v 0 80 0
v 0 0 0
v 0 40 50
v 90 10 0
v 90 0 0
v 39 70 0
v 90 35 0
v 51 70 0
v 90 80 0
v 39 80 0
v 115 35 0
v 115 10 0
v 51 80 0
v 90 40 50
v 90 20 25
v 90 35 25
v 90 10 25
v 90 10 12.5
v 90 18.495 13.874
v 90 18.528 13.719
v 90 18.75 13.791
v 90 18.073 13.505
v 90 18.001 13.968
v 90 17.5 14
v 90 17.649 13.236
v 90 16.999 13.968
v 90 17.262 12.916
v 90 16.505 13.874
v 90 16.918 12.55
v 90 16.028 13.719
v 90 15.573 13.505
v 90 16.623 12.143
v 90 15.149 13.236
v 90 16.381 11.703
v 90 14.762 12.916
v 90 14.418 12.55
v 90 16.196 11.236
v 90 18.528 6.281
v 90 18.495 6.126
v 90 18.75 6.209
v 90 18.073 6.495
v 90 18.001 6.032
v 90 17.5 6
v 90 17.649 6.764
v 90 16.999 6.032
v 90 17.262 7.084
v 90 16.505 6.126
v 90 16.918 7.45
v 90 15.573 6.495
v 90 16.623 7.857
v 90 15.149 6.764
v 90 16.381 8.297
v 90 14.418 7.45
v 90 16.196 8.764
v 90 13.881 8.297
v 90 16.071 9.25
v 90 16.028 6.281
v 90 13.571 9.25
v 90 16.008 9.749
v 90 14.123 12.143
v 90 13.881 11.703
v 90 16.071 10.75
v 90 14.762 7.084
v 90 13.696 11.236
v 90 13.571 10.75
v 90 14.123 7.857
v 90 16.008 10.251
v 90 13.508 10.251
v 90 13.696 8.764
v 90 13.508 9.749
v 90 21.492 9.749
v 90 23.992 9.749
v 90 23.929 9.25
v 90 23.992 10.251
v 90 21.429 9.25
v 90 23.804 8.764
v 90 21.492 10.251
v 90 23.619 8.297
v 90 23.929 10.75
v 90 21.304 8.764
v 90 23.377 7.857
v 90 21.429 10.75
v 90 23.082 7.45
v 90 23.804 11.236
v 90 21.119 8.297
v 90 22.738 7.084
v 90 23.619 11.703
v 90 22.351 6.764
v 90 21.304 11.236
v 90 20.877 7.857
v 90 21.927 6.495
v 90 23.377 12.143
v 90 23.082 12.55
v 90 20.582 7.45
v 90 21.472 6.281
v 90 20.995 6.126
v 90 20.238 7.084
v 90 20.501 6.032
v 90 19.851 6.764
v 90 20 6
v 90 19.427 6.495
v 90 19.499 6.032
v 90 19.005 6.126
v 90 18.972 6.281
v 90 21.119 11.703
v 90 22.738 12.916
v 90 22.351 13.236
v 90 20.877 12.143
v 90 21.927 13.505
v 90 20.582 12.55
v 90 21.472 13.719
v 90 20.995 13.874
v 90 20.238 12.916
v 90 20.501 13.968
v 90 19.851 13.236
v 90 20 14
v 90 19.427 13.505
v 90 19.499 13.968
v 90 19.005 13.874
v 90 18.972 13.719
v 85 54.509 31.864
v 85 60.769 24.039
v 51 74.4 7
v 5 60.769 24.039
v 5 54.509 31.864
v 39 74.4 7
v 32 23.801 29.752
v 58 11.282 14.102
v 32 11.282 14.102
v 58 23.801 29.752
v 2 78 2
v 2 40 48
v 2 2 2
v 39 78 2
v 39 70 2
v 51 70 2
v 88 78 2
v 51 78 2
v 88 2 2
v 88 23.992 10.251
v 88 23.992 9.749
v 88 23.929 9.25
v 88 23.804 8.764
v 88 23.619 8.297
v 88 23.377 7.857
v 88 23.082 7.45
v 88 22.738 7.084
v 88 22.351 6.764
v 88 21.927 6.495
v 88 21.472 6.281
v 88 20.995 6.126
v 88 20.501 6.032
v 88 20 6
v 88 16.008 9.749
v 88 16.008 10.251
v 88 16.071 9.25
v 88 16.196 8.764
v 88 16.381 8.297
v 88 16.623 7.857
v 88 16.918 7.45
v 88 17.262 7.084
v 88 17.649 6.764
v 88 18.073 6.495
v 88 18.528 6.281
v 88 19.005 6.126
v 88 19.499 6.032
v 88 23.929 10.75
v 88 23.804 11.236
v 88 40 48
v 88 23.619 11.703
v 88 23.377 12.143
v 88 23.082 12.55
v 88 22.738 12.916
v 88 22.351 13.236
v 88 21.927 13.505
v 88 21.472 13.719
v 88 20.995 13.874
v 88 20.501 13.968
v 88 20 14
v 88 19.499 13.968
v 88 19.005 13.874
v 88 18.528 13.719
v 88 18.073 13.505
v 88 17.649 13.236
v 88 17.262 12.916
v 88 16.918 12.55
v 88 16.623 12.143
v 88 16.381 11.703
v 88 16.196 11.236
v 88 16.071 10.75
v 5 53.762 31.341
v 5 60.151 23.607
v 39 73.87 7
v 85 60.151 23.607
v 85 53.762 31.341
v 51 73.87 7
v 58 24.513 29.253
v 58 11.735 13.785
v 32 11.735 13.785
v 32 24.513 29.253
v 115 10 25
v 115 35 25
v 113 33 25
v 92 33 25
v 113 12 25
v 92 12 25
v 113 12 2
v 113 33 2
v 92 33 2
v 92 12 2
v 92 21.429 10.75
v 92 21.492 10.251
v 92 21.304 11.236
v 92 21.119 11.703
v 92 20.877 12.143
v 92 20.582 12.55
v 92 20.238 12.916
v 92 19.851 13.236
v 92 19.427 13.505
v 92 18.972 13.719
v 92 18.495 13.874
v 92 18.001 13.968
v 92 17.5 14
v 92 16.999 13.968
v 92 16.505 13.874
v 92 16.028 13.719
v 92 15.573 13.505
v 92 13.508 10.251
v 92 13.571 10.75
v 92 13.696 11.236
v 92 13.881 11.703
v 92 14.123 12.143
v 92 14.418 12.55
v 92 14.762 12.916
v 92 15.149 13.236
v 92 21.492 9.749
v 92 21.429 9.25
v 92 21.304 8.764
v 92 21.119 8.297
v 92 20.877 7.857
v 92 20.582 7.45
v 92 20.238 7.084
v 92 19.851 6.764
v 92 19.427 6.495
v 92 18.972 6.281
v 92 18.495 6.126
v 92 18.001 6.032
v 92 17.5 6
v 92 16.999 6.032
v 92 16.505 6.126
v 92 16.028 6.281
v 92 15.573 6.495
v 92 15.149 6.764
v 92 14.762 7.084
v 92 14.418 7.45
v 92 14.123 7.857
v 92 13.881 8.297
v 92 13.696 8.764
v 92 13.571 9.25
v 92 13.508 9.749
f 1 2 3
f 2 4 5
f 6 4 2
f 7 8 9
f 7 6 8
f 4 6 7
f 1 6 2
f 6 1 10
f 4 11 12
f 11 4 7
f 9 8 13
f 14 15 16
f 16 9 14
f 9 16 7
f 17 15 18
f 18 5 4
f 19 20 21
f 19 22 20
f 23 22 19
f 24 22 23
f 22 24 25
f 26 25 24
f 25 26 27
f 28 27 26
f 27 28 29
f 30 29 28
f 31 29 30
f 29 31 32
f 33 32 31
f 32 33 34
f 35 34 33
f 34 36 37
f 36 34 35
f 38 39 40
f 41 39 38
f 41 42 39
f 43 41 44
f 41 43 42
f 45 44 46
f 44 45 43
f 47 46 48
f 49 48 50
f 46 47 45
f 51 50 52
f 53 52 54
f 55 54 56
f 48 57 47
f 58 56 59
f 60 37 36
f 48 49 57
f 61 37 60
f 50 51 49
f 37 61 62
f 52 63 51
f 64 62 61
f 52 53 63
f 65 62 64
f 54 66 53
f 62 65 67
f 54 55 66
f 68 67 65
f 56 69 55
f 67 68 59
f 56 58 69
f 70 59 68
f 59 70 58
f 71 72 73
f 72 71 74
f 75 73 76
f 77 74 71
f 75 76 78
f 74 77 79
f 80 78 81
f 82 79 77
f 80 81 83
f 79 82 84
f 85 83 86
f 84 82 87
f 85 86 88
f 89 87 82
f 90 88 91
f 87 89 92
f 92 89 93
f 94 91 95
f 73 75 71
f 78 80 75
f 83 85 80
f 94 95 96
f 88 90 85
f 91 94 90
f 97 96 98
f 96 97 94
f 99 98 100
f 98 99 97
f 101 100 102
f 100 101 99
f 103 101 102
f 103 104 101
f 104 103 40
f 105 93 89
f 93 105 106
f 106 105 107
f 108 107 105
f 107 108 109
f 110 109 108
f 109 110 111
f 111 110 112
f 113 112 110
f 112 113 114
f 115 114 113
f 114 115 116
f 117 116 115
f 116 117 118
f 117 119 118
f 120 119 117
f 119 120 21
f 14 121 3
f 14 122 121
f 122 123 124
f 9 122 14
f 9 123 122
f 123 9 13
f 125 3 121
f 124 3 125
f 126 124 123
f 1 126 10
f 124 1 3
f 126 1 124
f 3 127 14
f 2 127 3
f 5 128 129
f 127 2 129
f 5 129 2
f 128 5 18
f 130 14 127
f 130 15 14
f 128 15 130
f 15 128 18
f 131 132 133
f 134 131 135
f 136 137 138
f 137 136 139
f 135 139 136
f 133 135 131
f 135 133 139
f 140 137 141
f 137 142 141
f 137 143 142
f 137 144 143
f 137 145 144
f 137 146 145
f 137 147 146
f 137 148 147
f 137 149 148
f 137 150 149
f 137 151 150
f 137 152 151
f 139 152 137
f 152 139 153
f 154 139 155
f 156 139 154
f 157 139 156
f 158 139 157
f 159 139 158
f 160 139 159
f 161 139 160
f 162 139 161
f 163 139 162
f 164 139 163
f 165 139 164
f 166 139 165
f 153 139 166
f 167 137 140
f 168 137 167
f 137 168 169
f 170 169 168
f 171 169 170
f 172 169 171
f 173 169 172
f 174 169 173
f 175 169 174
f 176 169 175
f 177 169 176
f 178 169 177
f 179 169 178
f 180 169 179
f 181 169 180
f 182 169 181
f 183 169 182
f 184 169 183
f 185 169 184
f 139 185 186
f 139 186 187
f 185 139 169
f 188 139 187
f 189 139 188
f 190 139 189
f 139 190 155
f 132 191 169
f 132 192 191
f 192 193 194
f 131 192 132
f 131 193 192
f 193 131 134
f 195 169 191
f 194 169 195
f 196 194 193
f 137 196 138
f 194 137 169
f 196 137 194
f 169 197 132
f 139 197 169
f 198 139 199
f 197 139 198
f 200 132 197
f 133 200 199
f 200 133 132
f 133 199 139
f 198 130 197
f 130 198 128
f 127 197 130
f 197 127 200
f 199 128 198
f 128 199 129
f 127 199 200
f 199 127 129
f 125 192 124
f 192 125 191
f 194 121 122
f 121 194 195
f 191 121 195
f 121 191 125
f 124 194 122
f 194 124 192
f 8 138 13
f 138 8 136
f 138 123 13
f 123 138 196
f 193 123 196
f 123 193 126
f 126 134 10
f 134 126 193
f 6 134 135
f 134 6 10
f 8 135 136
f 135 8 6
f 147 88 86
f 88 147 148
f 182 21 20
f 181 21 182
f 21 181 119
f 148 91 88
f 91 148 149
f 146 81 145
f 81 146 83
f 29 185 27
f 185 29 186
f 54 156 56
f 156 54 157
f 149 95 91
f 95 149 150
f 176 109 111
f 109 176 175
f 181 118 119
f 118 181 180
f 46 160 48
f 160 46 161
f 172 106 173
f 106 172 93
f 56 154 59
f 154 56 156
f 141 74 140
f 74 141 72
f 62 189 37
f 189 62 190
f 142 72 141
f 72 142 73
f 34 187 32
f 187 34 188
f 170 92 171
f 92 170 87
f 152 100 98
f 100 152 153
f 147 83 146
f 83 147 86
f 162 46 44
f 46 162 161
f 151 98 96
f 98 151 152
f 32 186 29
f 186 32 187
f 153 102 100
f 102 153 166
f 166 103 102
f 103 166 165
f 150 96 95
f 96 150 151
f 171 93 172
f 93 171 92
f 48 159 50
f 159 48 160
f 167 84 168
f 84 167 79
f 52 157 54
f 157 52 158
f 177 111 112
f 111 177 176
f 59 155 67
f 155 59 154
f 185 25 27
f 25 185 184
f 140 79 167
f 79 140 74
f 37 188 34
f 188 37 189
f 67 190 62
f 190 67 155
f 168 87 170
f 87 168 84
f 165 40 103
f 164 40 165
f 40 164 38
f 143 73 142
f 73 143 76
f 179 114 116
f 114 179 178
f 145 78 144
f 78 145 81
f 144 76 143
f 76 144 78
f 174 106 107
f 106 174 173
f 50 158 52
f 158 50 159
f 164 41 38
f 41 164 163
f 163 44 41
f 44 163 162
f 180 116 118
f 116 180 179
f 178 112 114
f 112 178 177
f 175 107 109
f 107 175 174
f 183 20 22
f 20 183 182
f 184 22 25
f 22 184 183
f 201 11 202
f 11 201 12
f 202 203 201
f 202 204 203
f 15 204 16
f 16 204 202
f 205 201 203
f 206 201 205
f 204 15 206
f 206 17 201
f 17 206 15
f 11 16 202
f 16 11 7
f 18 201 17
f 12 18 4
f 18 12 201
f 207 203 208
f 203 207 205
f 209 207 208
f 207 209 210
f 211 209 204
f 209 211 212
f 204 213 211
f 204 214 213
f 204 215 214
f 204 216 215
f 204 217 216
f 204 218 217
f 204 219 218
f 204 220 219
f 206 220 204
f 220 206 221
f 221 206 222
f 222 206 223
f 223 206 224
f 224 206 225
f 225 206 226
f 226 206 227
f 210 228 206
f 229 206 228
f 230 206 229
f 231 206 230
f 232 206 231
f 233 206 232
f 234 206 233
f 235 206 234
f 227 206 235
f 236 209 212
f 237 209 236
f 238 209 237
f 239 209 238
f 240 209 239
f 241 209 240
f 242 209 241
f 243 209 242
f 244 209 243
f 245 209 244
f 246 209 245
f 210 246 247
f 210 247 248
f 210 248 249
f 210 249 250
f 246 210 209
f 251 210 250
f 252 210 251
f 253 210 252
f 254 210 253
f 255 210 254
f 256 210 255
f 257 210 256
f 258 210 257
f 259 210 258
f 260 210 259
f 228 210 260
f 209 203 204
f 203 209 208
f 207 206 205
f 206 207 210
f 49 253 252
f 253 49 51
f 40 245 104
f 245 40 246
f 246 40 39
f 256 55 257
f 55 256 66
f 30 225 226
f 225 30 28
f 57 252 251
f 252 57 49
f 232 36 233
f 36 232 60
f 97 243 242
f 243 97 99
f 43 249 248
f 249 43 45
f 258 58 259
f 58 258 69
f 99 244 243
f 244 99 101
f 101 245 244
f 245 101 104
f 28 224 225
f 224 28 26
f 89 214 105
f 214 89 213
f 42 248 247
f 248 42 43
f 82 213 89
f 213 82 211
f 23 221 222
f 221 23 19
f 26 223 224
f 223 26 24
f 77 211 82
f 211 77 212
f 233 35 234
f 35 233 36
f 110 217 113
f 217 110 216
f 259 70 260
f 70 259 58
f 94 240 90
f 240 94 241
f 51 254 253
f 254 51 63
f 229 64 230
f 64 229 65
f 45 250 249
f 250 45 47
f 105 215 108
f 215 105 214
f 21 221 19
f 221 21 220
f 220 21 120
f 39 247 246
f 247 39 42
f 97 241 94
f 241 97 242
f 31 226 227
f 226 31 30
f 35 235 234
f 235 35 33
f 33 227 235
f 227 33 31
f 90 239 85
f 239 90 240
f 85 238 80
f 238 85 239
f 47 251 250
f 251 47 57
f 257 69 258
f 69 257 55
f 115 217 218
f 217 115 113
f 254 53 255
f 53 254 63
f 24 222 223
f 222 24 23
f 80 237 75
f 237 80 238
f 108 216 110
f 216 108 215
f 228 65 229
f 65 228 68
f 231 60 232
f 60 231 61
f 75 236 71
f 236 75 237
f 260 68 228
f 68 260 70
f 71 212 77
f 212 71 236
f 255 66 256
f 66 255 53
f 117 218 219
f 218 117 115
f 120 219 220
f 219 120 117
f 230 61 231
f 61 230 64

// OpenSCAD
// --- PARAMETERS ---
wall = 2;               // Wall thickness
main_w = 90;            // Main body width
main_h = 50;            // Main body height
main_d = 80;            // Main body depth
btn_size = 25;          // Button box size

// Dimensions of your components
panel_w = 80;   panel_h = 45; // Solar panel dimensions
screen_w = 26;  screen_h = 15; // OLED display dimensions

$fn = 50;               // Smoothness of circles/cylinders

module main_case() {
    difference() {
        // 1. MAIN PYRAMID BODY
        rotate([90, 0, 90])
        linear_extrude(height = main_w)
        polygon(points=[[0,0], [main_d,0], [main_d/2, main_h]]);

        // 2. INTERNAL HOLLOW (Space to fit electronics)
        translate([wall, wall, wall])
        rotate([90, 0, 90])
        linear_extrude(height = main_w - wall*2)
        polygon(points=[[0,0], [main_d-wall*2,0], [(main_d-wall*2)/2, main_h-wall*2]]);

        // 3. CUTOUT FOR DISPLAY (FRONT SIDE)
        // Located on the left side of your previous screenshot
        translate([main_w/2 - screen_w/2, 10, 15]) 
        rotate([-35, 0, 0]) // Angle for the front slope
        cube([screen_w, screen_h, 20]); // Depth of 20 to ensure it cuts through

        // 4. CUTOUT FOR SOLAR PANEL (BACK SIDE)
        // Located on the right side of your previous screenshot
        translate([main_w/2 - panel_w/2, main_d - 25, 20]) 
        rotate([35, 0, 0]) // Angle for the back slope
        cube([panel_w, panel_h, 10]); 

        // 5. HOLE FOR USB (REAR BOTTOM)
        translate([main_w/2 - 6, main_d - 10, -1])
        cube([12, 15, 8]);
        
        // 6. HOLE FOR BUTTON WIRING
        translate([main_w - 5, 20, 10])
        rotate([0, 90, 0])
        cylinder(h = 10, r = 4);
    }
}

module button_box() {
    translate([main_w, 10, 0])
    difference() {
        cube([btn_size, btn_size, btn_size]);
        translate([wall, wall, wall]) cube([btn_size-wall*2, btn_size-wall*2, btn_size]);
        
        // Hole for the button itself (top side)
        translate([btn_size/2, btn_size/2, btn_size-5]) cylinder(h = 10, r = 3.5);
        
        // Hole for wiring (left side, towards the pyramid)
        translate([-5, btn_size/2 - 5, 10]) rotate([0, 90, 0]) cylinder(h = 10, r = 4);
    }
}

main_case();
button_box();
